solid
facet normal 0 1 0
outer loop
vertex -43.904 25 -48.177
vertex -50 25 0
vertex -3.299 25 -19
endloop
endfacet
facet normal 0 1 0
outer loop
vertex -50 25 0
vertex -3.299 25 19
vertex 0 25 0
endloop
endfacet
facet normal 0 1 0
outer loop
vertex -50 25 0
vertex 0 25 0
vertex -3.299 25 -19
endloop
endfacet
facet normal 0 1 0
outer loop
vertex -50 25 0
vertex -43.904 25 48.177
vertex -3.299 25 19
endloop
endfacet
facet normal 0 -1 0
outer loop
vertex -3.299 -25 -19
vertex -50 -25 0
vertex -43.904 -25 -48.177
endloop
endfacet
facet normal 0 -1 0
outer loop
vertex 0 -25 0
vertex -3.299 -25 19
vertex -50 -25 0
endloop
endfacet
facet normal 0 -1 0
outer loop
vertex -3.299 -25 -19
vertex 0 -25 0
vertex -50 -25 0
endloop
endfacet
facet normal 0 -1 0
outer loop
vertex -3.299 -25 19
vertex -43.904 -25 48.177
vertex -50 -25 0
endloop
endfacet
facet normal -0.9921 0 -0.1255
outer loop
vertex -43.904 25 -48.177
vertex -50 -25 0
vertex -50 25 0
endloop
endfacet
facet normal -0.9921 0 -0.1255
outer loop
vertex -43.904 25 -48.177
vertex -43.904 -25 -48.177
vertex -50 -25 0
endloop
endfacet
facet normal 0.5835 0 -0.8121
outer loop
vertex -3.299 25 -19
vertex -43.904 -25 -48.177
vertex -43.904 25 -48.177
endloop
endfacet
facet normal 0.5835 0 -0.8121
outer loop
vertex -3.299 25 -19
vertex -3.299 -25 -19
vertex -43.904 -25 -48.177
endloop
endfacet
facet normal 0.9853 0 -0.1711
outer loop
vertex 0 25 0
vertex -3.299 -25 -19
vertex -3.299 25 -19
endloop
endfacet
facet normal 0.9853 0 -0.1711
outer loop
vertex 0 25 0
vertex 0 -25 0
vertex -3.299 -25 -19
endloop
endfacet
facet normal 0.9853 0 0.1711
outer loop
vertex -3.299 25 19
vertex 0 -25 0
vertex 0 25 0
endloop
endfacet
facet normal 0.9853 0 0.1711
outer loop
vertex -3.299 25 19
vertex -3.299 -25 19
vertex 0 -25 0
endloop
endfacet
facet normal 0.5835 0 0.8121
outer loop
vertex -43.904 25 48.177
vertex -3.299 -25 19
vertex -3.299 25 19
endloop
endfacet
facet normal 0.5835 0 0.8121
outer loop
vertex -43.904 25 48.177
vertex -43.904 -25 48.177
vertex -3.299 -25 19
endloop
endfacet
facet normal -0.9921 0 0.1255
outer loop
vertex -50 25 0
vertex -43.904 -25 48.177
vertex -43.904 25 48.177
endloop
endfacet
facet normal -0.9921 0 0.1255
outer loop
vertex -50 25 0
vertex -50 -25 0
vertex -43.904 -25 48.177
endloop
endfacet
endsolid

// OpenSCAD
// file: ../include/utils.scad
function vmult(v1, v2, index=0) =
    index == len(v1) - 1
        ? [v1[index] * v2[index]]
        : concat([v1[index] * v2[index]], vmult(v1, v2, index+1));
// file: ../include/cutouts.scad
include <utils.scad>;


module inner_cutout(cutout_w=50) {
    if (build_inner_cutout) {
        point_1x=sin(cutout_vertical_angle)*cutout_inner_h/2;
        point_1y=cutout_inner_h/2;
        
        point_1=[point_1x, point_1y];
        
        point_2x=cos(cutout_inner_angle)*cutout_w;
        point_2y=sin(cutout_inner_angle)*cutout_w;
        
        point_2=[point_2x, point_2y];

        rotate([90, 180])
        translate([0, 0, -cutout_w/2])
        linear_extrude(cutout_w)
        polygon([
            [0, 0],
            point_1,
            point_2 + point_1,
            [cutout_w, 0],
            vmult(point_2 + point_1, [1, -1]),
            vmult(point_1, [1, -1])
        ]);
    } else {
        import("stl/inner_cutout.stl");
    }
}

module outer_cutout(cutout_w=100) {
    if (build_outer_cutout) {
        inner_w=cutout_w-10;
        
        point_1x=sin(cutout_vertical_angle)*cutout_outer_h/2;
        point_1y=cutout_outer_h/2;
        
        point_1=[point_1x, point_1y];
        
        point_2x=cos(cutout_outer_angle)*inner_w;
        point_2y=sin(cutout_outer_angle)*inner_w;
        
        point_2=[point_2x, point_2y];


        difference() {
            cube(cutout_w, center=true);
            
            rotate([90, 180])
            translate([0, 0, -inner_w/2])
            linear_extrude(inner_w)
            polygon([
                [0, 0],
                point_1,
                point_2 + point_1,
                [cutout_w, 0],
                vmult(point_2 + point_1, [1, -1]),
                vmult(point_1, [1, -1])
            ]);
        }
    } else {
        import("stl/outer_cutout.stl");        
    }
}
// file: ../config.scad
height=66;
diam=31;
thickn=2.15;
thickn_side=2.7;
thickn_deco=1;
overshoot_angle=7.5;

cutout_outer_angle=23;
cutout_inner_angle=35.7;
cutout_vertical_angle=10;
cutout_inner_h=38;
cutout_inner_offset=-2;
cutout_outer_h=46.5;
cutout_outer_offset=12.5;

screws_offset_x=6.5;
screws_offset_z=21.5;
screws_outer_d=3.5;
screws_inner_d=1.8;
screw_outer_thickn=1;

// Sorry, I didn't know what to name these angles
deco_side_angle_vert=3.1;
deco_side_angle_horz=1.8;
deco_side_angle_1=27;
deco_side_angle_2=12;
deco_inset=3;

// If false, use prebuilt STL, otherise build actual .scad
build_decoration_side=true;
build_decoration_top_btm=true;
build_inner_cutout=true;
build_outer_cutout=true;
build_screw_inset=true;
// main file
include <../config.scad>;
include <../include/cutouts.scad>;

build_inner_cutout=true;

inner_cutout();
